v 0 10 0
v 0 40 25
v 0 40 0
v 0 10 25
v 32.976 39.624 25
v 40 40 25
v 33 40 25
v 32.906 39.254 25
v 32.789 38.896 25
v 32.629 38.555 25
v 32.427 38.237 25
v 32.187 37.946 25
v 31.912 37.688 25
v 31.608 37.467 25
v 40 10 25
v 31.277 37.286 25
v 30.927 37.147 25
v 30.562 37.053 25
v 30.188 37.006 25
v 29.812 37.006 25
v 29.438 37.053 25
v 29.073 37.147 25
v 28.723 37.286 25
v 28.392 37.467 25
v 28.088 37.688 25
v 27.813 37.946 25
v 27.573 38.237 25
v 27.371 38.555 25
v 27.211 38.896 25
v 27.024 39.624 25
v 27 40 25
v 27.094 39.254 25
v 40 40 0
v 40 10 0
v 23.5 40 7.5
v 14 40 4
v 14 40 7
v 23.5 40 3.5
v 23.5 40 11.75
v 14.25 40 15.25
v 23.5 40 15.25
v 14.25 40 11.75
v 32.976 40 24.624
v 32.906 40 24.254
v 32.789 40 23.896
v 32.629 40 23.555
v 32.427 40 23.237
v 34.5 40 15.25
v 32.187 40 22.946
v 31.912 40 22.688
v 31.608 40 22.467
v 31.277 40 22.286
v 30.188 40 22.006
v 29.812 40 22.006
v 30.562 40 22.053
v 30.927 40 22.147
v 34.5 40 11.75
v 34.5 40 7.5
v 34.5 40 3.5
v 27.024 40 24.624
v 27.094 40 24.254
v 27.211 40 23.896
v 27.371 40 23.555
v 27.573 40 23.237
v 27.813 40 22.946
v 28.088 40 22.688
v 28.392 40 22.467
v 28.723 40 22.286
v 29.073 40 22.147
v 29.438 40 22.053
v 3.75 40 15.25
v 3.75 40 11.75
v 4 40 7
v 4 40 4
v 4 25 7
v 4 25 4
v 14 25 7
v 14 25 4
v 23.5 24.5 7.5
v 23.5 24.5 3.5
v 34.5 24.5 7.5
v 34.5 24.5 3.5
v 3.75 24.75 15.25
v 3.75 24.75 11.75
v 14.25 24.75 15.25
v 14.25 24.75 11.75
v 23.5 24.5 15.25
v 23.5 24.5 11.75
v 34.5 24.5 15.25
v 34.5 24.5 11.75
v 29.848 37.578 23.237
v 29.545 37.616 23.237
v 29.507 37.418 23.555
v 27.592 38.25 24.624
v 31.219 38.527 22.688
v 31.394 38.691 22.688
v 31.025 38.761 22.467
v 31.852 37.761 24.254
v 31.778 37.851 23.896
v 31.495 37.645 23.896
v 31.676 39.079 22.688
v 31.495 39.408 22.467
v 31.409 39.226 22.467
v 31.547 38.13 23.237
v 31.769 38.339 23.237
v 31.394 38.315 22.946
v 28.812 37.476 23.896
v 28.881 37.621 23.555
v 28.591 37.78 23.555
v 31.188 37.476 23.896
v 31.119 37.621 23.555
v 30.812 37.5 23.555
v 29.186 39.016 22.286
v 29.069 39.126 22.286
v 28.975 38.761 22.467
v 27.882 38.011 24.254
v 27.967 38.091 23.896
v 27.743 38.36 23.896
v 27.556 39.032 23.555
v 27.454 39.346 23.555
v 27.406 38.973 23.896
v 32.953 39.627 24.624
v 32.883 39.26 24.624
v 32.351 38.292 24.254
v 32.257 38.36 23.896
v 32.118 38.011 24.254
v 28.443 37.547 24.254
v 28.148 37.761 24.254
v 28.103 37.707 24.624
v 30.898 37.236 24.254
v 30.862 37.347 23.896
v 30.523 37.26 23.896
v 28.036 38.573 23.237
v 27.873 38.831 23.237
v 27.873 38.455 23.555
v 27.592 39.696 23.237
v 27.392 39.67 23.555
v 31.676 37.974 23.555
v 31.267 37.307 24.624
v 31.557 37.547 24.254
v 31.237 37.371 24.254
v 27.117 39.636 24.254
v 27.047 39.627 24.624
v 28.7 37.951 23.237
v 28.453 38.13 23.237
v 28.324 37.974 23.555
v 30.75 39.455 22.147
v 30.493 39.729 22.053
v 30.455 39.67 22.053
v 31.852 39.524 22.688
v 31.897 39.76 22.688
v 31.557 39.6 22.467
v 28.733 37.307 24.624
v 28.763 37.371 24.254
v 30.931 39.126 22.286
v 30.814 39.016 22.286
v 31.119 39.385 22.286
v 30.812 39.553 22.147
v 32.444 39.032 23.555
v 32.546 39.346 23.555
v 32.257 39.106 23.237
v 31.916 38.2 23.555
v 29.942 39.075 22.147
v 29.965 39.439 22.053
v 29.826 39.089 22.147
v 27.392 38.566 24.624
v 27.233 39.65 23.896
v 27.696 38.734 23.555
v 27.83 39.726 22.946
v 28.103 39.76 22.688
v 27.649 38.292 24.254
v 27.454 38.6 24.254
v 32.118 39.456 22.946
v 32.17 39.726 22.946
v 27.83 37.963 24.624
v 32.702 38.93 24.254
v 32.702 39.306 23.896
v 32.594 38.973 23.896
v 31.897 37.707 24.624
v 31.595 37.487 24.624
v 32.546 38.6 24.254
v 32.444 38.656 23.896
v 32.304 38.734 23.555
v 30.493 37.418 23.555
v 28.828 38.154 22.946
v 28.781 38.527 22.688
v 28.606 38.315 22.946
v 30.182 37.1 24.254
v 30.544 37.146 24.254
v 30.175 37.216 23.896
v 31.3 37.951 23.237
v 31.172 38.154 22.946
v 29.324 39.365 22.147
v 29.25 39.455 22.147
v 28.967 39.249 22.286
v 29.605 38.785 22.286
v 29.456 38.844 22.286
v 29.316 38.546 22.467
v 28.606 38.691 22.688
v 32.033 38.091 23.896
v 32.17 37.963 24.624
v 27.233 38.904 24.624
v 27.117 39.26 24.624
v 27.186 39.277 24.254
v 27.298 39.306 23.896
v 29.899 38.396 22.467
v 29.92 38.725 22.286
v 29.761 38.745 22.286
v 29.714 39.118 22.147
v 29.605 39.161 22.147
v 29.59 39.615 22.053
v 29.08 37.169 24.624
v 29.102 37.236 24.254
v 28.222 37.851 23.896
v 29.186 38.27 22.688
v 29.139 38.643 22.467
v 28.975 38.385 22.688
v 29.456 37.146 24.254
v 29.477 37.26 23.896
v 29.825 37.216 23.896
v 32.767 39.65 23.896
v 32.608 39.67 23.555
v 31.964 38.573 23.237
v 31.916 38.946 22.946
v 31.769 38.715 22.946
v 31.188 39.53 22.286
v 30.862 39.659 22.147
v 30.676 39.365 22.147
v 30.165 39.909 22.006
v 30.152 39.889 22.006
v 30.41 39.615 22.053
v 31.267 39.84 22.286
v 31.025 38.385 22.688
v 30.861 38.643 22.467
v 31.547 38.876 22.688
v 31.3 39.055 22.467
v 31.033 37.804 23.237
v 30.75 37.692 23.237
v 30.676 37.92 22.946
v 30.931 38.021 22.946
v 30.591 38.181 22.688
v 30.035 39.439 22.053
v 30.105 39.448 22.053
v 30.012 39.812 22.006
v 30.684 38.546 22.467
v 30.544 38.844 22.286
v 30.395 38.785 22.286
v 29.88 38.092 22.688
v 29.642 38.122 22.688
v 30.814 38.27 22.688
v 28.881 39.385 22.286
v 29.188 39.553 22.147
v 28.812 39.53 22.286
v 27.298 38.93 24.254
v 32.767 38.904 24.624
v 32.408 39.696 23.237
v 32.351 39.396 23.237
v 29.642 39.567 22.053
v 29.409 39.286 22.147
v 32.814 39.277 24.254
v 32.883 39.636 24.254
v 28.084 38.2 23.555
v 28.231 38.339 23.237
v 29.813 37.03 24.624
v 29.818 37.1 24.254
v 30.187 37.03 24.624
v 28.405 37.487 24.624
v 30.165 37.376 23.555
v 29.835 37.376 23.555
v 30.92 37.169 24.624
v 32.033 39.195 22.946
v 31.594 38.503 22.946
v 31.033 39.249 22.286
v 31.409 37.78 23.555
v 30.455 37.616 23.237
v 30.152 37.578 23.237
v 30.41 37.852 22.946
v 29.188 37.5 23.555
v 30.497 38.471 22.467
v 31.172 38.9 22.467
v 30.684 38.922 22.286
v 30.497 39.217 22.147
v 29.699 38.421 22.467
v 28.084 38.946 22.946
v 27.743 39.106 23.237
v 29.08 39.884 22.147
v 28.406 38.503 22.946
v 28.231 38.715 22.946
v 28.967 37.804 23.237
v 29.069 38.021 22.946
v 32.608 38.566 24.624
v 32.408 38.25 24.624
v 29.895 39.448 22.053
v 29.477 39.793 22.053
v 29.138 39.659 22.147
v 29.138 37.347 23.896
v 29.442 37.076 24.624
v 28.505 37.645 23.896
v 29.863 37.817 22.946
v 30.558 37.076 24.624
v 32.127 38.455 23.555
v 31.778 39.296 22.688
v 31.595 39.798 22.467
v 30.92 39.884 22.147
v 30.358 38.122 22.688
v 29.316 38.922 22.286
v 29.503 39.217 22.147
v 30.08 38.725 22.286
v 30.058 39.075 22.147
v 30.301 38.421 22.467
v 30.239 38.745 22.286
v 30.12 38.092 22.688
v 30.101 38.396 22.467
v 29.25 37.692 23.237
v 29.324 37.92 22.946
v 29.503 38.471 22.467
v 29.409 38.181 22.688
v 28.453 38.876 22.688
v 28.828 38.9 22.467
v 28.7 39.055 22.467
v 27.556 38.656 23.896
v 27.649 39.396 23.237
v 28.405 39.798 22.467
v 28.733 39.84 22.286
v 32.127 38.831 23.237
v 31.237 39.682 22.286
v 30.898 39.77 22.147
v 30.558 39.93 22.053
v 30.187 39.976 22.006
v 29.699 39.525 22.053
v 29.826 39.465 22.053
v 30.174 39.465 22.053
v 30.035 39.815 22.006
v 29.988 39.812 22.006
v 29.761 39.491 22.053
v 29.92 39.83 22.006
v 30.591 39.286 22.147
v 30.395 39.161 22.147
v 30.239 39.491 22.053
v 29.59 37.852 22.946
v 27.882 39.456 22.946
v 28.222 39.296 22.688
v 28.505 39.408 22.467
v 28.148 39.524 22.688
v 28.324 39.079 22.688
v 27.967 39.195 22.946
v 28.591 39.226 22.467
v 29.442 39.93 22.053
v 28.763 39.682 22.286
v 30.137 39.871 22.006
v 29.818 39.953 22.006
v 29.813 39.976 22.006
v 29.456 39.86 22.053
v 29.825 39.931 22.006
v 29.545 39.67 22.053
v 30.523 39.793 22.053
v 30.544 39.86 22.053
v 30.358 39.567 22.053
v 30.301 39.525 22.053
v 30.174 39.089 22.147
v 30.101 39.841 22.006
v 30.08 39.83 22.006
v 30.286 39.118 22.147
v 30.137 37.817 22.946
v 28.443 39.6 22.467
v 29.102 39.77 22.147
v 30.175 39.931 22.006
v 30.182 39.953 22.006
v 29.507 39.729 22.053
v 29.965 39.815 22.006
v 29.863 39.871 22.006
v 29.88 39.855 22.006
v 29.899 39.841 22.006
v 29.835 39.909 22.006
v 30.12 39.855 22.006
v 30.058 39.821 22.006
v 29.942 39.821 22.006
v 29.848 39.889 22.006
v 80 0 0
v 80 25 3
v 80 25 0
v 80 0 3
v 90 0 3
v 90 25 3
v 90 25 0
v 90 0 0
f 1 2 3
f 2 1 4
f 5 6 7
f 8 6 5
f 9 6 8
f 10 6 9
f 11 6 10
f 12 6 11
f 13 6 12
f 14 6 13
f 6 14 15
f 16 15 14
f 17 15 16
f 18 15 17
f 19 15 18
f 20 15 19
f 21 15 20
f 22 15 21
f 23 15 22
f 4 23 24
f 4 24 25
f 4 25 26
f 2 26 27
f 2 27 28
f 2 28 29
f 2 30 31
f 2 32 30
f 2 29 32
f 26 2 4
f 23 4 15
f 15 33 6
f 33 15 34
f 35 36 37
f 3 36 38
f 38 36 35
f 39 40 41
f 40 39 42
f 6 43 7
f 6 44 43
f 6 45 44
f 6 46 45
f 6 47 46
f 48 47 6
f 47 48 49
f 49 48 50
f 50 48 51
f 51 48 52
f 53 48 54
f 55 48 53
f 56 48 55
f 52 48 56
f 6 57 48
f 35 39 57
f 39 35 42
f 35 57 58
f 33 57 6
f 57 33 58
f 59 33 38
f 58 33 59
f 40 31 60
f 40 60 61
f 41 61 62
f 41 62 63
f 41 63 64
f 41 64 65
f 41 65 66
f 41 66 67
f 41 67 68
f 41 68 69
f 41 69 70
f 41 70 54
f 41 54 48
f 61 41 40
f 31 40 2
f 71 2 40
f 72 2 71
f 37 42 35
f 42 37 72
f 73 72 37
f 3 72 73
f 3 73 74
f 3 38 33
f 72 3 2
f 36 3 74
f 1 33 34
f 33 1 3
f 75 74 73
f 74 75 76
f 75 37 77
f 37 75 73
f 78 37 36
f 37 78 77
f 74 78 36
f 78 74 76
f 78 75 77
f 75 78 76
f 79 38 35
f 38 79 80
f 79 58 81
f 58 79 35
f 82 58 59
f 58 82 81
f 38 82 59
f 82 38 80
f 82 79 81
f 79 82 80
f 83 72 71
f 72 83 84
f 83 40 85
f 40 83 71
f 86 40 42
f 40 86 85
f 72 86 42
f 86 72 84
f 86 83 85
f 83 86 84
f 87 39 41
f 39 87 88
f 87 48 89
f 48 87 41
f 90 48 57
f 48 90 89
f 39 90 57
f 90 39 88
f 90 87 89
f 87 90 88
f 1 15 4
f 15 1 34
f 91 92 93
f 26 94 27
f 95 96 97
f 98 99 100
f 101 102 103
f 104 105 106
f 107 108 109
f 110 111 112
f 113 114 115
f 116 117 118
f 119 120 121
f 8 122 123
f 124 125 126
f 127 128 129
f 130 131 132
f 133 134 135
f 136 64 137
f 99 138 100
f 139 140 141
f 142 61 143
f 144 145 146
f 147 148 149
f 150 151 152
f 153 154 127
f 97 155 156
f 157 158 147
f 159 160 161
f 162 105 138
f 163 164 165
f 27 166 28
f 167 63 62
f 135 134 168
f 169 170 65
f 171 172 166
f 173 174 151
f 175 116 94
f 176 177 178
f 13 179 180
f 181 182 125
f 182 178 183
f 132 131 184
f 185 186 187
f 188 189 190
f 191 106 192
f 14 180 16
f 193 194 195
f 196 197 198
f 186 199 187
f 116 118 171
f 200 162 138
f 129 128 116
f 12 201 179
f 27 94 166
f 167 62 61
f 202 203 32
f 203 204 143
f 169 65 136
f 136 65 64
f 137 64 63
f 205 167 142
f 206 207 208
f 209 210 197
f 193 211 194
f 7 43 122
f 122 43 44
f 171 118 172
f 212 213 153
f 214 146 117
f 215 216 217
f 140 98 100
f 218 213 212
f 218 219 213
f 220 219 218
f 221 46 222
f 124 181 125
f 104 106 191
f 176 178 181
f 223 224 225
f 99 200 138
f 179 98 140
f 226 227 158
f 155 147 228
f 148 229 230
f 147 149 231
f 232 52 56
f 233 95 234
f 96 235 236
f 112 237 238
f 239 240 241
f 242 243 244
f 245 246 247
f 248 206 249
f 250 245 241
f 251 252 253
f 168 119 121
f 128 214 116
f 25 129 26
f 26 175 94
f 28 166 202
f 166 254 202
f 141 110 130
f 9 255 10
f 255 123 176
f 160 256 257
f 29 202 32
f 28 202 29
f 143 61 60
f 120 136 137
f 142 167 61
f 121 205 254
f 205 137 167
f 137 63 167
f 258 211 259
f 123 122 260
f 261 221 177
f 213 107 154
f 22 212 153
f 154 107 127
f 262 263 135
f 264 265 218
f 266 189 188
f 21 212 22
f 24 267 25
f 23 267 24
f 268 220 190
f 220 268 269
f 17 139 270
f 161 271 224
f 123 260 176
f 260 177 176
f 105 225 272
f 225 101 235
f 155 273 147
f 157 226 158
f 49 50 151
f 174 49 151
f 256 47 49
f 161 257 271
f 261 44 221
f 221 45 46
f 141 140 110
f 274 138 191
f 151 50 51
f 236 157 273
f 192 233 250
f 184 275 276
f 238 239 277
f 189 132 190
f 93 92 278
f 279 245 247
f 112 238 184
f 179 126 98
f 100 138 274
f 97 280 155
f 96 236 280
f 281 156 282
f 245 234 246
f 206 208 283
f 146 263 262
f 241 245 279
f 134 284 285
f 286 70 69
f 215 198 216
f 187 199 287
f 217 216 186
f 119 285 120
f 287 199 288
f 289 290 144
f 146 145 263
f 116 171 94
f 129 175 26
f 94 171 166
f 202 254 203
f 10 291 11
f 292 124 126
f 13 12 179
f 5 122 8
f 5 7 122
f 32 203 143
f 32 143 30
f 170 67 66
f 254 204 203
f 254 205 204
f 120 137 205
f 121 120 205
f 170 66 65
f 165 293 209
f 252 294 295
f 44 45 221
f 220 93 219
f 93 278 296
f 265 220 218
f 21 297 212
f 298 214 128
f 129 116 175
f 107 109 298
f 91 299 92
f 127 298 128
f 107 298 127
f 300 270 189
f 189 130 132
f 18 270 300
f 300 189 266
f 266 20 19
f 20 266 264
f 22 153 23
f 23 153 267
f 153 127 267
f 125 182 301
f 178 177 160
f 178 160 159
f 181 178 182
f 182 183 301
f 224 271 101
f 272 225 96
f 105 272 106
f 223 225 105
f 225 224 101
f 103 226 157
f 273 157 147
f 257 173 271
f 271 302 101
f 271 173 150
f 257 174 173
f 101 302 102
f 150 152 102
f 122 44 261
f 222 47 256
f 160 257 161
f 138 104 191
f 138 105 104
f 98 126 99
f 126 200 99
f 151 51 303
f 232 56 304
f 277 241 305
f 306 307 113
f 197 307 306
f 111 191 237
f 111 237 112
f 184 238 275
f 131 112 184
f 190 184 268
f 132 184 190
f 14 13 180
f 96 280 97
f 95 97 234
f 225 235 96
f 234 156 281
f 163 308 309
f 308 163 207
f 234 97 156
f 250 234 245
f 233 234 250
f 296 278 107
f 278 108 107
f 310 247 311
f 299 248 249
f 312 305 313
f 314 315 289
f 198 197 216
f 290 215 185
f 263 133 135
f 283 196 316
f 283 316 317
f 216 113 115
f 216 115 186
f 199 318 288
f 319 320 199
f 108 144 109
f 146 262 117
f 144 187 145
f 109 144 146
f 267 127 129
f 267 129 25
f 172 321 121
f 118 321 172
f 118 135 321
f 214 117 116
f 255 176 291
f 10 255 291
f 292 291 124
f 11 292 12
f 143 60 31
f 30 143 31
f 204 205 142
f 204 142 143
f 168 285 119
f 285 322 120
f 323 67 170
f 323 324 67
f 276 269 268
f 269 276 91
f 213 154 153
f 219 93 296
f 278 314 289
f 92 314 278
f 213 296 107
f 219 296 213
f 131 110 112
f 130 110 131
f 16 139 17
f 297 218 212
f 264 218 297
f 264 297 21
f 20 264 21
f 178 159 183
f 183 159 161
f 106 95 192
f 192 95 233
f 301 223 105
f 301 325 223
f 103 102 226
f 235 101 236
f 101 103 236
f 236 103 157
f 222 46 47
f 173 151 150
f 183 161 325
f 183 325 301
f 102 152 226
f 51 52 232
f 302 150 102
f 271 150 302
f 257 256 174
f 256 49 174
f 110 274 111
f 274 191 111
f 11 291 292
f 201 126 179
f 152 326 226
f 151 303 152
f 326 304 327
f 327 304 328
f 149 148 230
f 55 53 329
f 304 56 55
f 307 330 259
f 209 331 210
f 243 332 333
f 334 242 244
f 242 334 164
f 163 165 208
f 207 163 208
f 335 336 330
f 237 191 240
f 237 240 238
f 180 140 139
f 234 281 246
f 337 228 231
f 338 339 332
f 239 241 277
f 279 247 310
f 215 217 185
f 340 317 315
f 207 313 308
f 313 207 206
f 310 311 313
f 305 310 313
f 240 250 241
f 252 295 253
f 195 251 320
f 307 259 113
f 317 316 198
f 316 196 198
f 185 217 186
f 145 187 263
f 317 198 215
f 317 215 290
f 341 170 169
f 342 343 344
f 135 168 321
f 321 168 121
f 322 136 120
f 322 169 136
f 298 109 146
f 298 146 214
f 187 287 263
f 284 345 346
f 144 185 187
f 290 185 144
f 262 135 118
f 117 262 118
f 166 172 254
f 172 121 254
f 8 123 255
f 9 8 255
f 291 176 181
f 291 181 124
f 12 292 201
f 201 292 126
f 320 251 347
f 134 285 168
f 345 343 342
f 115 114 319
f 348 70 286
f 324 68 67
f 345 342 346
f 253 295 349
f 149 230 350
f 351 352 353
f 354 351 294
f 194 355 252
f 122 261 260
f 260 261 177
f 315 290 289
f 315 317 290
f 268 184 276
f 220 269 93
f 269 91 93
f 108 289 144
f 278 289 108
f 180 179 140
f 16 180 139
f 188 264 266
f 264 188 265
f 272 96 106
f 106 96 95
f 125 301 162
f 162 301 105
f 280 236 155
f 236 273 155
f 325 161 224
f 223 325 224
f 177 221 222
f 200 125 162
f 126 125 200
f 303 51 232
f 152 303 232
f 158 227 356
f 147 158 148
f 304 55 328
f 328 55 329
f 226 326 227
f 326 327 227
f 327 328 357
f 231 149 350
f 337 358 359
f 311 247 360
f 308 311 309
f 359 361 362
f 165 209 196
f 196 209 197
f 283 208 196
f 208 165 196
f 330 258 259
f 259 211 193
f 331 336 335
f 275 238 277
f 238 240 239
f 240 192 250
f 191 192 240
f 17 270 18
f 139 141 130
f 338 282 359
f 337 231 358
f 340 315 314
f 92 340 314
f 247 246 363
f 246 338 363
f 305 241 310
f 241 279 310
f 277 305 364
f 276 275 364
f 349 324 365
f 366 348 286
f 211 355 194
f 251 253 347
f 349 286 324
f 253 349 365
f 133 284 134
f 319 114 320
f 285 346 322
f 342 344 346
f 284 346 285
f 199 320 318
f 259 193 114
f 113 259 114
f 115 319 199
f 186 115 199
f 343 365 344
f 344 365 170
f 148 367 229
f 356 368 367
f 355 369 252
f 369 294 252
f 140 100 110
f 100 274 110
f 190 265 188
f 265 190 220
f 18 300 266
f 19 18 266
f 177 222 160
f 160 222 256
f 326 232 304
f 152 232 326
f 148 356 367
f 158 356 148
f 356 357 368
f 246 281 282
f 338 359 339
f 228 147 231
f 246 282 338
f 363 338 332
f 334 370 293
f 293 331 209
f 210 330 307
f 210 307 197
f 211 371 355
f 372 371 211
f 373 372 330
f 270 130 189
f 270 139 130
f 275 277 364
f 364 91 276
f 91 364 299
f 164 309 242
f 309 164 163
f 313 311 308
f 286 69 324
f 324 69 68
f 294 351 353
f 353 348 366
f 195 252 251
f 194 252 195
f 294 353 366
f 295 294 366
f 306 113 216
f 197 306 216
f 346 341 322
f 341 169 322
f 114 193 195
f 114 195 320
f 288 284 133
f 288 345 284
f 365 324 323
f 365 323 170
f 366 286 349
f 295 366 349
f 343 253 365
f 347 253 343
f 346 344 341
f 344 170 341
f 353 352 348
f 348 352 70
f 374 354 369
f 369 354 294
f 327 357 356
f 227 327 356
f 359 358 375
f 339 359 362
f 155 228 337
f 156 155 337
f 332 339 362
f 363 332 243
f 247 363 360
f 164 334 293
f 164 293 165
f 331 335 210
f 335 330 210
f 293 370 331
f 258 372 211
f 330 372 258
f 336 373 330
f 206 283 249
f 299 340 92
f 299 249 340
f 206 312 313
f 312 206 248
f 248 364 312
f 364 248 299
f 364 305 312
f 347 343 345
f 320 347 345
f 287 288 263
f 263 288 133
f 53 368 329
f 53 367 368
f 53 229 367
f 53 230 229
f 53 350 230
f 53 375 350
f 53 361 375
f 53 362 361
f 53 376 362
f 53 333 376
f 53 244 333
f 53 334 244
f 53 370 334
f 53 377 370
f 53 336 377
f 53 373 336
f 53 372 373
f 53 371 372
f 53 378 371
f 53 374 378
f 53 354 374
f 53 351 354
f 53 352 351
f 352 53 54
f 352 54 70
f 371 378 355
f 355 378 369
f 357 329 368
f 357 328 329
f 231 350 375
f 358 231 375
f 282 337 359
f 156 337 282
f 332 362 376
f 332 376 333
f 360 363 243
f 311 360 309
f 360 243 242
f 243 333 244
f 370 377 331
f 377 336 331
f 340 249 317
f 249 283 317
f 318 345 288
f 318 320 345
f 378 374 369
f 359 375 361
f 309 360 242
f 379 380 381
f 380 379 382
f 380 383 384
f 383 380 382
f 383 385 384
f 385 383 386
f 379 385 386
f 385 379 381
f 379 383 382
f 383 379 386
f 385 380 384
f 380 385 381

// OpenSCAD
difference(){
cube([40,40,25]);
    //10mm, 15mm, 3mm no tolerancia 
translate([4,25,4])
#cube([10,15,3]);

// 10, 15, 3 (tolearncias 1 mm = 0.5mm cada lado)
translate([23.5,24.5,3.5])
#cube([11,16,4]);    

//10, 15, 3 (tolerancias 0.5mm =0.25 mm cada lado)
translate([3.75,24.75,11.75])
#cube([10.5,15.5,3.5]);

// 10, 15, 3 (tolerancias 1mm para x,y y 0.5mm para z) 
translate([23.5,24.5,11.75])
#cube([11,16,3.5]);    

#cube([40,10,25]);
translate([30,40,25])
sphere(r=3, $fn=50);
}



translate([80,0,0])
cube([10,25,3]);
